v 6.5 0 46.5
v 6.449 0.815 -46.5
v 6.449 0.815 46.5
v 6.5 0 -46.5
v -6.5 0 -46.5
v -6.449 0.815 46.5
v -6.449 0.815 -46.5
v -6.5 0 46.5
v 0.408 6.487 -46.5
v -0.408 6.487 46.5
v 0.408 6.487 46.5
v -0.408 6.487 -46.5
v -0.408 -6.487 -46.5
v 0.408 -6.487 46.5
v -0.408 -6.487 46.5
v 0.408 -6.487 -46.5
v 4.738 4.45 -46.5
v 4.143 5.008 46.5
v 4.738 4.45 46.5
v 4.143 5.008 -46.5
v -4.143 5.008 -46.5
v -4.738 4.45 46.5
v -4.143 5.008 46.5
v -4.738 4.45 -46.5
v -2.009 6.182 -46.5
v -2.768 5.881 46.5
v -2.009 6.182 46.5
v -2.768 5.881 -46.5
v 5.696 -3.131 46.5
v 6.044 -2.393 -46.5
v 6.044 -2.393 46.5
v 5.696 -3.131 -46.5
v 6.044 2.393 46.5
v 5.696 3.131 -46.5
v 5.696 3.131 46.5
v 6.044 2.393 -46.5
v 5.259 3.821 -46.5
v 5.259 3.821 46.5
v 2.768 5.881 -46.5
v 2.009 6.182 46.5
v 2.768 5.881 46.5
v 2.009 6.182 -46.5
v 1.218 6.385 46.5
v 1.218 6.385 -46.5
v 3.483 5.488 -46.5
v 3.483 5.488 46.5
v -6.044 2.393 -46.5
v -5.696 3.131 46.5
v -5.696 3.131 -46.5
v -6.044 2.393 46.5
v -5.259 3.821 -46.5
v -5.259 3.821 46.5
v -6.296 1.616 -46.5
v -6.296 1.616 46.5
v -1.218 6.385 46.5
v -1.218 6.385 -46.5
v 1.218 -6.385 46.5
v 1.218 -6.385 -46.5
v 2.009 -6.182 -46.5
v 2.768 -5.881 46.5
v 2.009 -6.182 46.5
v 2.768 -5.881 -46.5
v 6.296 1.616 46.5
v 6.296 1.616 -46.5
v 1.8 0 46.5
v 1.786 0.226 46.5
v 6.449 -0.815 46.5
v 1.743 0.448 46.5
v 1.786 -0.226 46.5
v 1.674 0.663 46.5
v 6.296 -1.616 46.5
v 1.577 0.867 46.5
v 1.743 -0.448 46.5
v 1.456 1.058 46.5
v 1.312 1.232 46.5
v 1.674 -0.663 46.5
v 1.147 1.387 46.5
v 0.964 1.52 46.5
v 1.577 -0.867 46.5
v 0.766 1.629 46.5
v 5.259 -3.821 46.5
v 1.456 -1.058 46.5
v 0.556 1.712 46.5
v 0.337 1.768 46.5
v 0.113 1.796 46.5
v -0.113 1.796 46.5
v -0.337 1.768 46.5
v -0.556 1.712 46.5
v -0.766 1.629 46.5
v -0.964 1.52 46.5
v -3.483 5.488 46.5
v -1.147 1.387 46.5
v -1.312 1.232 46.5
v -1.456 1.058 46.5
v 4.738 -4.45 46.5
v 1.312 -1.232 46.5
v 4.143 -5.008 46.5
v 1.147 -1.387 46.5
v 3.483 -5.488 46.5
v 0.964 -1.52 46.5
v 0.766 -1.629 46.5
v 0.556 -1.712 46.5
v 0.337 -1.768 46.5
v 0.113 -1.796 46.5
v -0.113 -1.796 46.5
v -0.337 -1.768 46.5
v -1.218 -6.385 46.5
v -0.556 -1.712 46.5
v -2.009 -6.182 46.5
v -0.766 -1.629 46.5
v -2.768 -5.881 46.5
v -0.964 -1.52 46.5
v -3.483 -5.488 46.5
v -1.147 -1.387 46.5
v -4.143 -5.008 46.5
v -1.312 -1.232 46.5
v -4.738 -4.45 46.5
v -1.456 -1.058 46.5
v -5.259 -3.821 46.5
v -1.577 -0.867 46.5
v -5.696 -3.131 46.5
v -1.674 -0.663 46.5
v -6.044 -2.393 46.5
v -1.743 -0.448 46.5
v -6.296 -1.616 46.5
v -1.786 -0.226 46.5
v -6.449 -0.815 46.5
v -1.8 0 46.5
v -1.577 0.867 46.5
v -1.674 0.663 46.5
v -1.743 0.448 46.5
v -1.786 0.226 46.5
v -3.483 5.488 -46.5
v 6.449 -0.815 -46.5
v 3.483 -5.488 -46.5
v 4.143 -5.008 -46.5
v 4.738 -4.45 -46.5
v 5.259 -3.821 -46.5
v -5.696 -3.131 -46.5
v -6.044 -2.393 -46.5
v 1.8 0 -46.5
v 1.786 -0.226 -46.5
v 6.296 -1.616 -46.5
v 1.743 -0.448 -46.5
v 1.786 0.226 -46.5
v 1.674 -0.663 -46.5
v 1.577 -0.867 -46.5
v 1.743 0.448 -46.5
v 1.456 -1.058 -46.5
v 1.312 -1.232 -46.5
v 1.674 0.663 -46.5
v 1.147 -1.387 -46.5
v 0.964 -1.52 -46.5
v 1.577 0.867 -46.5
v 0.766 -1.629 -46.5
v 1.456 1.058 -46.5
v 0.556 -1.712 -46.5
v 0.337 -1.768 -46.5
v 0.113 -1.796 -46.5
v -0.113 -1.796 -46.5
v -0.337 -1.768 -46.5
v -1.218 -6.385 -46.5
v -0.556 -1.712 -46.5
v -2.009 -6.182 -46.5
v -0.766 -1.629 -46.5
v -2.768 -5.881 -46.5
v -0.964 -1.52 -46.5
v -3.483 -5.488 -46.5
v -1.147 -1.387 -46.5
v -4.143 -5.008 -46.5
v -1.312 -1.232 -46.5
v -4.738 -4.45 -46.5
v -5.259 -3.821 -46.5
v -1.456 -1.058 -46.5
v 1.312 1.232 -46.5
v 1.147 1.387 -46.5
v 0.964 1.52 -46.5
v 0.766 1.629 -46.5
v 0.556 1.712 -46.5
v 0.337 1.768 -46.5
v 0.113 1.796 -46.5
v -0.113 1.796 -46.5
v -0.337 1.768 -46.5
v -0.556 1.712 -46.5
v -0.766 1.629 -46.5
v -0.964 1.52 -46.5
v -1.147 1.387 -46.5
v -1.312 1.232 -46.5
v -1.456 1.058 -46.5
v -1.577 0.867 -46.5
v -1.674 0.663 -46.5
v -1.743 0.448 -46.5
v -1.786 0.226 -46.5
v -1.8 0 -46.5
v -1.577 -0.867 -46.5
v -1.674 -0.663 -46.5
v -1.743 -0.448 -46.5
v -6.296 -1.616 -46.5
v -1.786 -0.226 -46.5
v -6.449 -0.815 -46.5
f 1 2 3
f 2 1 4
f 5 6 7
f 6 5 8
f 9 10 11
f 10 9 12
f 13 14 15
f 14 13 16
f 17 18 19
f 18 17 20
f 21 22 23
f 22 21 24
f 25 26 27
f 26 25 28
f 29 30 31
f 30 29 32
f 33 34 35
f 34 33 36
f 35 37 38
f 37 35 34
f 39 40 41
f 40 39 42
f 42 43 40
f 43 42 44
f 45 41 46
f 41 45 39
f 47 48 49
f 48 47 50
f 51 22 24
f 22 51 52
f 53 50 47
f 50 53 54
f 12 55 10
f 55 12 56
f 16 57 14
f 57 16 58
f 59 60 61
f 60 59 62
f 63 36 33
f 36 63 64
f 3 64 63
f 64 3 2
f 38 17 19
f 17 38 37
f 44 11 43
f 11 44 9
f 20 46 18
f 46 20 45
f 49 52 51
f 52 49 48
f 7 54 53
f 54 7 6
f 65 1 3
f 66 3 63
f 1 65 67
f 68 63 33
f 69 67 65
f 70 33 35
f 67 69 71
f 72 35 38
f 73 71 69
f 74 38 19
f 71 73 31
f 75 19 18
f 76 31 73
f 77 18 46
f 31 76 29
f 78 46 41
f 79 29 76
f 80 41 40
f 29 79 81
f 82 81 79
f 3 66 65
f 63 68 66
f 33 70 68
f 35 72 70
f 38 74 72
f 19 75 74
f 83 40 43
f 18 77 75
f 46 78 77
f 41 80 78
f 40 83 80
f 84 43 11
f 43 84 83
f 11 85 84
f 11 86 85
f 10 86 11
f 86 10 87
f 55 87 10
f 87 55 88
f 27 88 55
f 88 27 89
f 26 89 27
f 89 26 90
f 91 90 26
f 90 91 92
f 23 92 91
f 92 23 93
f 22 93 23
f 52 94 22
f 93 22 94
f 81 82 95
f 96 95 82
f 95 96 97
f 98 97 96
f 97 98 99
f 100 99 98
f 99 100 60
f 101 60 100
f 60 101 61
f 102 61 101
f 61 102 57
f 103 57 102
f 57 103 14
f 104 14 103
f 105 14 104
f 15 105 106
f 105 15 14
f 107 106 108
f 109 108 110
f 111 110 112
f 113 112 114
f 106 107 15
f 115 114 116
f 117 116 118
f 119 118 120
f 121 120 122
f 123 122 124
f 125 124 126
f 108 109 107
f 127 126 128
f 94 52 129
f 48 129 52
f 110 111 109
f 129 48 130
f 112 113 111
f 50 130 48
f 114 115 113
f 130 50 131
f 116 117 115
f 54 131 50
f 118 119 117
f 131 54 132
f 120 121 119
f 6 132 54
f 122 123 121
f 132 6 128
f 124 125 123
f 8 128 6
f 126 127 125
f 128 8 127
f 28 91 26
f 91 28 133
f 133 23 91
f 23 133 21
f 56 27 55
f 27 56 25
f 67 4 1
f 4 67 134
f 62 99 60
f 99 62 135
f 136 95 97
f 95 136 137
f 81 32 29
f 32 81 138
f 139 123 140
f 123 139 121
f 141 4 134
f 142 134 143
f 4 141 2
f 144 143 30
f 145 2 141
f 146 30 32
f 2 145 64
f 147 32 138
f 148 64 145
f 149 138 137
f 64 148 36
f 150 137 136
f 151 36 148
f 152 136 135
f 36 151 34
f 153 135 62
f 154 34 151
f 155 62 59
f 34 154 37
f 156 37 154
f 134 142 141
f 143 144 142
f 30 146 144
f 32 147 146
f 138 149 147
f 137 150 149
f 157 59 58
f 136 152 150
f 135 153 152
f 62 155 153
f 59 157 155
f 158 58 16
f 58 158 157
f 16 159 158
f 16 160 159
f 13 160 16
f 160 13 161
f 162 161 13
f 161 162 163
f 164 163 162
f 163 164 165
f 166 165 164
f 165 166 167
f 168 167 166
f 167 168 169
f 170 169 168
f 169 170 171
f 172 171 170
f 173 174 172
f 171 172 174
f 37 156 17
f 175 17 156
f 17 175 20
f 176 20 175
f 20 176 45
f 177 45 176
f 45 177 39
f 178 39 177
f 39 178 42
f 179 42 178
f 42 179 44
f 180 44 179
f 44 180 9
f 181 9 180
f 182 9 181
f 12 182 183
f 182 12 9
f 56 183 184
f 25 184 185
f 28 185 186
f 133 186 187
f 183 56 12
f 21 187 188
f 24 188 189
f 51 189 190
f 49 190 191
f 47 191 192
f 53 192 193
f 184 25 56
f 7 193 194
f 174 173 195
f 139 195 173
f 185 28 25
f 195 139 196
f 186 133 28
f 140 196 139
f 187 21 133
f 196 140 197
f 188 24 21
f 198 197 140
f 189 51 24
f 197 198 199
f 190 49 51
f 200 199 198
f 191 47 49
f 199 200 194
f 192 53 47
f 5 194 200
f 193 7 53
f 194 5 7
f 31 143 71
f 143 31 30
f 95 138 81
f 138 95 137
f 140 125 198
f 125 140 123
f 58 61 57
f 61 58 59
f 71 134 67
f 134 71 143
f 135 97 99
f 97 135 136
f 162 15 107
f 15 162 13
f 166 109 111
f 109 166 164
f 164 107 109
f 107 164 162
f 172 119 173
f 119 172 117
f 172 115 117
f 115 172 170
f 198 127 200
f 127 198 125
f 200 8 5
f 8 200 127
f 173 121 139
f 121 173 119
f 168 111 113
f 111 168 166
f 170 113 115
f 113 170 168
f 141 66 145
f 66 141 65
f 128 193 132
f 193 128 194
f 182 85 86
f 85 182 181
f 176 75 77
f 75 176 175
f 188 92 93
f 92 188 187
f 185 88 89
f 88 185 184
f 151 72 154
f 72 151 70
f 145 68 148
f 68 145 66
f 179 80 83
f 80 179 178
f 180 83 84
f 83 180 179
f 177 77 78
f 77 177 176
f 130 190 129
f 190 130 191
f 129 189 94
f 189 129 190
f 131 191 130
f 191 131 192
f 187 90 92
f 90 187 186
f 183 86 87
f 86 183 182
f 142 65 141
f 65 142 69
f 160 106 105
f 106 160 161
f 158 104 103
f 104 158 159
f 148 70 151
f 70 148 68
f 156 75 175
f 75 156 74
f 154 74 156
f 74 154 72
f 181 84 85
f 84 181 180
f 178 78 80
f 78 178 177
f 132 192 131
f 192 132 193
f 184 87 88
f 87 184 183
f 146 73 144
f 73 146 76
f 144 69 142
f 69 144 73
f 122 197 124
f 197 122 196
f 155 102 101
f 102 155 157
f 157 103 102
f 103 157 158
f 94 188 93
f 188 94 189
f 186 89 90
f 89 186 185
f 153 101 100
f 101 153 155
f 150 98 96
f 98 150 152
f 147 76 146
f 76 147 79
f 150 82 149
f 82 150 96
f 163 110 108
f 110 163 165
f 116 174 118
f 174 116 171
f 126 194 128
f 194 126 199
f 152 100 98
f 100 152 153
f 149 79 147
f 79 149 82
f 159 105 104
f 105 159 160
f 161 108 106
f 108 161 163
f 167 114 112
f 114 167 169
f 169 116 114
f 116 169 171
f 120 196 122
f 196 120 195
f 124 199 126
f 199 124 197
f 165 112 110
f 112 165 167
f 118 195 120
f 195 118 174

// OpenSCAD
$fn = 50;


difference() {
	union() {
		translate(v = [0, 0, -46.5000000000]) {
			cylinder(h = 93, r = 6.5000000000);
		}
	}
	union() {
		translate(v = [0, 0, -100.0000000000]) {
			cylinder(h = 200, r = 1.8000000000);
		}
	}
}
